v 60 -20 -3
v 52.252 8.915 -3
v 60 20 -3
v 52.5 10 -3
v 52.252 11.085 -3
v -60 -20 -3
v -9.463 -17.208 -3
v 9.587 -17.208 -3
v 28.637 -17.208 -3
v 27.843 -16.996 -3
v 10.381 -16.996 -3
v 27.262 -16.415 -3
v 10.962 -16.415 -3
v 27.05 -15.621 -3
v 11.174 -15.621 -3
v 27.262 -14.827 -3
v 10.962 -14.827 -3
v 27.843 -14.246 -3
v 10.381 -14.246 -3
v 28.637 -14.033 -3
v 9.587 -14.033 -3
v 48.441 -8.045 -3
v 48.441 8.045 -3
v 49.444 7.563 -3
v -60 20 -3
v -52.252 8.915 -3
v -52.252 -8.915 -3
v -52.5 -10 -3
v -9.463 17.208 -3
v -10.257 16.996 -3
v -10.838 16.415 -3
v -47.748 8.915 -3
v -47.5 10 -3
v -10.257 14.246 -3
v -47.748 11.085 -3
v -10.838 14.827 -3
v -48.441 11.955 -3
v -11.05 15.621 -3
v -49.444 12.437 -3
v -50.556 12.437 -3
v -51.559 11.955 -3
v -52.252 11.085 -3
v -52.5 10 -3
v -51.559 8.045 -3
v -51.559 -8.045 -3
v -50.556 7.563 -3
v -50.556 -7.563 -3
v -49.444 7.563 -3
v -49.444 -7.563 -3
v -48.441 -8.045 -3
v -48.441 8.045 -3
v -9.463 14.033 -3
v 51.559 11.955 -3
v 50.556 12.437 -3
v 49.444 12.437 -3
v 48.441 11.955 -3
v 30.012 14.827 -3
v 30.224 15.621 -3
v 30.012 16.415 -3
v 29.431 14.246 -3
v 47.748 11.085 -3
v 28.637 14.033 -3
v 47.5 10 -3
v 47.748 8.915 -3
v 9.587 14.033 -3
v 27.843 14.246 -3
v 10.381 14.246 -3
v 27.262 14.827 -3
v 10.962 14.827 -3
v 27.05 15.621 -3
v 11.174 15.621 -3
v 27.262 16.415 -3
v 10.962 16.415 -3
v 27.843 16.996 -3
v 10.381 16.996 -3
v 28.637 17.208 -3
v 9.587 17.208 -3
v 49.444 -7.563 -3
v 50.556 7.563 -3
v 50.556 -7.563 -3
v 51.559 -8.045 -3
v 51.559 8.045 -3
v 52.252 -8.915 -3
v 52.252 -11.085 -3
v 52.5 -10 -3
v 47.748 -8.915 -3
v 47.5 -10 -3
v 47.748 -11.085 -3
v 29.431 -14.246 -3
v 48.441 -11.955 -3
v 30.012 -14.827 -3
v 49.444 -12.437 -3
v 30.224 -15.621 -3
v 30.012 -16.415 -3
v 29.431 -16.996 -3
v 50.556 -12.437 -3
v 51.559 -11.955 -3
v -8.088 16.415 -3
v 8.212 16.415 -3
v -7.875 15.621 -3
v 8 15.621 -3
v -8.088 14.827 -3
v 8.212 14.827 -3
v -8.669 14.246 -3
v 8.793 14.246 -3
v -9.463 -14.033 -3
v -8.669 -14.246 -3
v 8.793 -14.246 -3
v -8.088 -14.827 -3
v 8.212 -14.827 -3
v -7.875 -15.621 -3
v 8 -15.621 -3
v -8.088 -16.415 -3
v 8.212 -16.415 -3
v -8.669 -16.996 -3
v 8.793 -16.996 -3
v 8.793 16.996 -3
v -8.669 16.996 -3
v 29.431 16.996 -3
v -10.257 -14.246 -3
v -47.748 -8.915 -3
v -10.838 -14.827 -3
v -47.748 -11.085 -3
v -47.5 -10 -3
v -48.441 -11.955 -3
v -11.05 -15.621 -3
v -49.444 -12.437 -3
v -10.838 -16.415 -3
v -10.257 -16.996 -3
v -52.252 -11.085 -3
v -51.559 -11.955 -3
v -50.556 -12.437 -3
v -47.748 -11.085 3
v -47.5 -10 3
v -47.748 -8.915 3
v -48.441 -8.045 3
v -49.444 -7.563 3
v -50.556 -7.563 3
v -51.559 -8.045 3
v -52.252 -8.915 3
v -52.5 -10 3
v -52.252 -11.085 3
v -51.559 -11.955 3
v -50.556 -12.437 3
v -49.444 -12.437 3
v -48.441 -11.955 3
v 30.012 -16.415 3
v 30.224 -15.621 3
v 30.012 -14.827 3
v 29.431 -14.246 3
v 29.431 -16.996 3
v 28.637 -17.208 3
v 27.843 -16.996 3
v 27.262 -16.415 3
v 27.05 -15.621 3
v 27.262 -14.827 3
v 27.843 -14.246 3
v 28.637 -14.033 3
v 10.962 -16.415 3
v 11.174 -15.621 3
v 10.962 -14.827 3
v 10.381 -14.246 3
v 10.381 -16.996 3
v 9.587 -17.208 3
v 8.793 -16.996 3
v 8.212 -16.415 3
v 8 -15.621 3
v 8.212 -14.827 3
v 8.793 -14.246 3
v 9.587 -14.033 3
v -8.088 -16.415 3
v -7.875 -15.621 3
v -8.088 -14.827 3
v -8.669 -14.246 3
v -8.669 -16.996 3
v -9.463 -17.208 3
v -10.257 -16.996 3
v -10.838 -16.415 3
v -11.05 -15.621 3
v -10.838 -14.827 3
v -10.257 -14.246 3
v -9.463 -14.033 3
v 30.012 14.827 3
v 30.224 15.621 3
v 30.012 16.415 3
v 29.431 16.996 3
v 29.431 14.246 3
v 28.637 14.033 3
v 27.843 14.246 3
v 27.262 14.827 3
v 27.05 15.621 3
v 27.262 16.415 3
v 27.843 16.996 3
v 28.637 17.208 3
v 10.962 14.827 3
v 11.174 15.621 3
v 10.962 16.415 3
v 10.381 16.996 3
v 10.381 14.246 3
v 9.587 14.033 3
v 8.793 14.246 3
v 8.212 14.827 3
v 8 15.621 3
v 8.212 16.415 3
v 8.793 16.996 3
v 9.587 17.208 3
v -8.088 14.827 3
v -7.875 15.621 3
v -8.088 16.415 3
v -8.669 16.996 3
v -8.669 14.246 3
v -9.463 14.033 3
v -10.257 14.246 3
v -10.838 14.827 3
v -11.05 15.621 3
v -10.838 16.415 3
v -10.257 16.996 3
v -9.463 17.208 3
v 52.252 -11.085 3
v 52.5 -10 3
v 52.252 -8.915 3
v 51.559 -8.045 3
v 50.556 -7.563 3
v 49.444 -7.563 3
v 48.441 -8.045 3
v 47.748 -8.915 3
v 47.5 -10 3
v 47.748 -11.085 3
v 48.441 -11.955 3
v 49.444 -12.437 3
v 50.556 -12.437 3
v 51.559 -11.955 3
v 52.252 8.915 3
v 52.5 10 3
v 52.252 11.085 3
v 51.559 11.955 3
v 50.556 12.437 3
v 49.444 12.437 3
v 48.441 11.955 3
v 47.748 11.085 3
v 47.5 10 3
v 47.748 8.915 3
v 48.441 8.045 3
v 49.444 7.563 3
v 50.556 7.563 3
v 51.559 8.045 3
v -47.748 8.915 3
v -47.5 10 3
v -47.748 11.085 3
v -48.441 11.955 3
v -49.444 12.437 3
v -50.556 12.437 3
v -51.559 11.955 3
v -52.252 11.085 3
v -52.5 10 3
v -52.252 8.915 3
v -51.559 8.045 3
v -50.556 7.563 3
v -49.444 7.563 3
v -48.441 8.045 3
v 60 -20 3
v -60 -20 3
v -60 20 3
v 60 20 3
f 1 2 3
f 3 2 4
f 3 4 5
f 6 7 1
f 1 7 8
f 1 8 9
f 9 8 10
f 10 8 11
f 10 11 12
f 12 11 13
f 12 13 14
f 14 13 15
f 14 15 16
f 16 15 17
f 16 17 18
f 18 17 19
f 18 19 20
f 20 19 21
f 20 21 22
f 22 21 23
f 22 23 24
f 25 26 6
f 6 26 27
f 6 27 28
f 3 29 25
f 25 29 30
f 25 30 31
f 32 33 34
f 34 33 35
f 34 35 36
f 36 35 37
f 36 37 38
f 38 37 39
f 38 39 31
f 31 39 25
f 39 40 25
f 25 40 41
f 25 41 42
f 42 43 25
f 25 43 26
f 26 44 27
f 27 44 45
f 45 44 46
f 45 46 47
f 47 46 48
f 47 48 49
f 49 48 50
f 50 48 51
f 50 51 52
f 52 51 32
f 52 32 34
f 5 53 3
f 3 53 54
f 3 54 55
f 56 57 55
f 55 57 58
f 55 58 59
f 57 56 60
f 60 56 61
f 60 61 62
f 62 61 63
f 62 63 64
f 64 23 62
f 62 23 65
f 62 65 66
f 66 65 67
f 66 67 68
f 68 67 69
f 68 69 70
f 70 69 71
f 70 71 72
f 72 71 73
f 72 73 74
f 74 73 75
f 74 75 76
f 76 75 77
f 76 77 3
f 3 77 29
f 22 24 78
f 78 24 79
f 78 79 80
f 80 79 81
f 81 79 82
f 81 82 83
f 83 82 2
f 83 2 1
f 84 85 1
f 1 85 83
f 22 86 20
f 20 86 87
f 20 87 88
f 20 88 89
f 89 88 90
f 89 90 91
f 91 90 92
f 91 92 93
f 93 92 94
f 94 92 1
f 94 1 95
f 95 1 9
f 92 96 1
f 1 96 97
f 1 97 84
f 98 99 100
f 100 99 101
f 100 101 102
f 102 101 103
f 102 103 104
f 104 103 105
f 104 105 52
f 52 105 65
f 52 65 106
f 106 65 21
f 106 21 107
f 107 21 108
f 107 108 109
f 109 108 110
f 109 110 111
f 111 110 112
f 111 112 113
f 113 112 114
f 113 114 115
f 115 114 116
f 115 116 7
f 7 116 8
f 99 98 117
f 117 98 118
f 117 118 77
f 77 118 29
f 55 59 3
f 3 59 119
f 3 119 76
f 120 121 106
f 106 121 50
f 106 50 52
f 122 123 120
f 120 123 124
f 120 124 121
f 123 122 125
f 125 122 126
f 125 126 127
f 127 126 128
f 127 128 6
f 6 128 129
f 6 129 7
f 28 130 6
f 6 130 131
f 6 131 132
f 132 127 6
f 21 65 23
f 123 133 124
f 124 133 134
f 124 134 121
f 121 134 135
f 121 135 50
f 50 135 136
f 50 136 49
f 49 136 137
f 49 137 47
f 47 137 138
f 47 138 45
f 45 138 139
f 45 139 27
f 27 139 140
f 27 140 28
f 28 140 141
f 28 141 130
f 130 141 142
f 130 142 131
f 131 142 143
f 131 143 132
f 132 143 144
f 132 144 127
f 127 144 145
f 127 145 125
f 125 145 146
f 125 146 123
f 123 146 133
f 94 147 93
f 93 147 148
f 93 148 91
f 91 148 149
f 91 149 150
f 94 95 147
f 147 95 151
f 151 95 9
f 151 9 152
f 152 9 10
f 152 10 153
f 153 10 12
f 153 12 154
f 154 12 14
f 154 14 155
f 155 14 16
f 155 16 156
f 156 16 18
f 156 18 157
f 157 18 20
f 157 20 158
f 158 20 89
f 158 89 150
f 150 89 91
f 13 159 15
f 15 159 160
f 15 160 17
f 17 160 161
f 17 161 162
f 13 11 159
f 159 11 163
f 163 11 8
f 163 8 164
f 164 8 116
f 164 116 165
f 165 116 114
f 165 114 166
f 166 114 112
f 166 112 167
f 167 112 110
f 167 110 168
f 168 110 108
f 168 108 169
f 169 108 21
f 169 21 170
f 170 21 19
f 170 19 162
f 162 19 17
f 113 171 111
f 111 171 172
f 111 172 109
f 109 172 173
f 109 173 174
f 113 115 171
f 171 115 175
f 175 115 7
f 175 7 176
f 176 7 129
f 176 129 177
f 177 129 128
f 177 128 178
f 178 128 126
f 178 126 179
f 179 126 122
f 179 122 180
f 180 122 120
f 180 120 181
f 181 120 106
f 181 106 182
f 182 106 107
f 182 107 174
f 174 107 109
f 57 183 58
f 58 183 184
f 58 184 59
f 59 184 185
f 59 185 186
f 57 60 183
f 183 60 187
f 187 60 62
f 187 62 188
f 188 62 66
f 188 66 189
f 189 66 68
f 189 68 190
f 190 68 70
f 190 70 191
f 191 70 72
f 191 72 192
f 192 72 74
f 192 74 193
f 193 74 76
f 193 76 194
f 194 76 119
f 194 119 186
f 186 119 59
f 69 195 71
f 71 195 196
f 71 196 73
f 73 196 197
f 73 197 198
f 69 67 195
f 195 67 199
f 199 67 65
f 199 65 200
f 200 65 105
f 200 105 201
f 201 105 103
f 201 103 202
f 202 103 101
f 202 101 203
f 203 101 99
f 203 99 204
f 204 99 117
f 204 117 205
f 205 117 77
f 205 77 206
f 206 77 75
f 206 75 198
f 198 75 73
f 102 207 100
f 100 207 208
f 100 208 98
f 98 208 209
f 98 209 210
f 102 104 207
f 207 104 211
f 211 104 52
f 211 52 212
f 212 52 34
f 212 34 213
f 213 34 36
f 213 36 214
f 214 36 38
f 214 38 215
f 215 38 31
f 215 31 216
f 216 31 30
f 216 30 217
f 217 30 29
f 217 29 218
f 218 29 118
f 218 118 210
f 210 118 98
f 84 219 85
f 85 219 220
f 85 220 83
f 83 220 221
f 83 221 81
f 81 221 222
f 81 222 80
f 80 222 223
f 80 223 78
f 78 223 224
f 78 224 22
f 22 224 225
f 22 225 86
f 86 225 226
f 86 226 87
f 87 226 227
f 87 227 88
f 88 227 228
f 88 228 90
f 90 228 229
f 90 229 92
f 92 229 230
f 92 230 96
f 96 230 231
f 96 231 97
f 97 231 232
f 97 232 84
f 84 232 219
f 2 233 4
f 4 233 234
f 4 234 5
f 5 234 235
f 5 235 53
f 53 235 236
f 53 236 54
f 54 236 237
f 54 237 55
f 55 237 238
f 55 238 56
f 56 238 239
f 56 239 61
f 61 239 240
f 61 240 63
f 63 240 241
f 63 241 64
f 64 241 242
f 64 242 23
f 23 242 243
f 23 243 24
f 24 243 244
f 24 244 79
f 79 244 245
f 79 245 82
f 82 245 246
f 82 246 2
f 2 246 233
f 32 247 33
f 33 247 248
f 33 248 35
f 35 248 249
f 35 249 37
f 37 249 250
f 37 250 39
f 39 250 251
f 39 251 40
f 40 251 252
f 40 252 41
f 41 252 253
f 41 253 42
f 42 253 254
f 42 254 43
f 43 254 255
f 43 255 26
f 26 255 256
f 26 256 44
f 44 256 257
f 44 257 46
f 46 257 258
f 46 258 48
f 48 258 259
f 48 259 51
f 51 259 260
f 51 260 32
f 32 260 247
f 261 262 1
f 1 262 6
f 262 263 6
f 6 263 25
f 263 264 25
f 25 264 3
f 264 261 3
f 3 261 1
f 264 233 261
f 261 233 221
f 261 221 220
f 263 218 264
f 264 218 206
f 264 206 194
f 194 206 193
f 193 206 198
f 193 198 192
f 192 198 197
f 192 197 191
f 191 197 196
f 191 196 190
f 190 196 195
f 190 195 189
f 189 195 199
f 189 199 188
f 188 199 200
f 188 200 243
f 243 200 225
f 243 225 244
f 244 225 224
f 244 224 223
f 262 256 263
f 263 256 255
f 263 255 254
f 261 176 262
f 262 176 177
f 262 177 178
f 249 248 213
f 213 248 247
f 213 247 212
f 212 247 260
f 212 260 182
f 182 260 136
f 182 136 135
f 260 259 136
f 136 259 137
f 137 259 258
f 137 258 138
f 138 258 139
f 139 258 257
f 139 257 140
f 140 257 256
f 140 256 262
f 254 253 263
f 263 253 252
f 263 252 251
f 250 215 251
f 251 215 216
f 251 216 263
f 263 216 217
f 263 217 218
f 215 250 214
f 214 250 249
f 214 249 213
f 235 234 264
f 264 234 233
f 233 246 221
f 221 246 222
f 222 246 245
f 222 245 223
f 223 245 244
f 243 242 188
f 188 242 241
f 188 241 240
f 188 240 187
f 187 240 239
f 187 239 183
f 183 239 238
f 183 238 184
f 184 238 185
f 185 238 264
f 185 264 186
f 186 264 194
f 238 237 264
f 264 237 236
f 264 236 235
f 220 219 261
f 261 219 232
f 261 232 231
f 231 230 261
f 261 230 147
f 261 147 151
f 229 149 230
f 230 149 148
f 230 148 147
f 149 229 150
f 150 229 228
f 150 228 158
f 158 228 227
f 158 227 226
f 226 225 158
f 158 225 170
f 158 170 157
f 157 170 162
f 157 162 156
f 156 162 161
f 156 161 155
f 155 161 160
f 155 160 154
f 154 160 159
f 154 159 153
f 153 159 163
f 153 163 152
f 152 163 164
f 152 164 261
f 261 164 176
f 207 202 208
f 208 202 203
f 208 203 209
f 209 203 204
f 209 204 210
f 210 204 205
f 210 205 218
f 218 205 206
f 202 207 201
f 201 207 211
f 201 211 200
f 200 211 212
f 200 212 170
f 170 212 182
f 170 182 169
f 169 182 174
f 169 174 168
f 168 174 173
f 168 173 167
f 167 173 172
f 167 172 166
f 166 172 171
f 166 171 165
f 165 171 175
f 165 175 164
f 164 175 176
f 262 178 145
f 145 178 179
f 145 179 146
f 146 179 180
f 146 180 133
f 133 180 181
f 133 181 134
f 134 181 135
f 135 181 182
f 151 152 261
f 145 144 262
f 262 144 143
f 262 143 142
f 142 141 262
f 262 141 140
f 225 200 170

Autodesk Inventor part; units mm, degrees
ref_plane "YZ Plane" through (0, 0, 0) normal (1, 0, 0) x (0, 1, 0)
ref_plane "XZ Plane" through (0, 0, 0) normal (0, 1, 0) x (-1, 0, 0)
ref_plane "XY Plane" through (0, 0, 0) normal (0, 0, 1) x (1, 0, 0)
sketch "Sketch1" plane through (0, 0, 0) normal (0, 0, 1) x (1, 0, 0)
  line L0 (-60, -20) -> (60, -20)
  line L1 (60, -20) -> (60, 20)
  line L2 (60, 20) -> (-60, 20)
  line L3 (-60, 20) -> (-60, -20)
  line L4 (-60, -20) -> (60, 20) construction
  line L5 (60, -20) -> (-60, 20) construction
  circle A0 centre (28.637, -15.621) radius 1.5875
  circle A1 centre (9.587, -15.621) radius 1.5875
  circle A2 centre (-9.463, -15.621) radius 1.5875
  circle A3 centre (28.637, 15.621) radius 1.5875
  circle A4 centre (9.587, 15.621) radius 1.5875
  circle A5 centre (-9.463, 15.621) radius 1.5875
  circle A6 centre (50, -10) radius 2.5
  circle A7 centre (50, 10) radius 2.5
  circle A8 centre (-50, -10) radius 2.5
  circle A9 centre (-50, 10) radius 2.5
  point P0 (0, 0)
  dimension "d0" = 120
  dimension "d1" = 40
  dimension "d4" = 3.175
  dimension "d5" = 3.175
  dimension "d6" = 3.175
  dimension "d7" = 3.175
  dimension "d8" = 3.175
  dimension "d9" = 3.175
  dimension "d10" = 31.242
  dimension "d11" = 19.05
  dimension "d12" = 19.05
  dimension "d13" = 31.363
  dimension "d14" = 5
  dimension "d15" = 5
  dimension "d16" = 5
  dimension "d17" = 5
  dimension "d20" = 10
  dimension "d21" = 10
  dimension "d22" = 20
  dimension "d23" = 10
  dimension "d26" = 4.379
extrude "Extrusion2" add sketch "Sketch1" along normal mid plane 6
properties part number "motor_bracket_base"
